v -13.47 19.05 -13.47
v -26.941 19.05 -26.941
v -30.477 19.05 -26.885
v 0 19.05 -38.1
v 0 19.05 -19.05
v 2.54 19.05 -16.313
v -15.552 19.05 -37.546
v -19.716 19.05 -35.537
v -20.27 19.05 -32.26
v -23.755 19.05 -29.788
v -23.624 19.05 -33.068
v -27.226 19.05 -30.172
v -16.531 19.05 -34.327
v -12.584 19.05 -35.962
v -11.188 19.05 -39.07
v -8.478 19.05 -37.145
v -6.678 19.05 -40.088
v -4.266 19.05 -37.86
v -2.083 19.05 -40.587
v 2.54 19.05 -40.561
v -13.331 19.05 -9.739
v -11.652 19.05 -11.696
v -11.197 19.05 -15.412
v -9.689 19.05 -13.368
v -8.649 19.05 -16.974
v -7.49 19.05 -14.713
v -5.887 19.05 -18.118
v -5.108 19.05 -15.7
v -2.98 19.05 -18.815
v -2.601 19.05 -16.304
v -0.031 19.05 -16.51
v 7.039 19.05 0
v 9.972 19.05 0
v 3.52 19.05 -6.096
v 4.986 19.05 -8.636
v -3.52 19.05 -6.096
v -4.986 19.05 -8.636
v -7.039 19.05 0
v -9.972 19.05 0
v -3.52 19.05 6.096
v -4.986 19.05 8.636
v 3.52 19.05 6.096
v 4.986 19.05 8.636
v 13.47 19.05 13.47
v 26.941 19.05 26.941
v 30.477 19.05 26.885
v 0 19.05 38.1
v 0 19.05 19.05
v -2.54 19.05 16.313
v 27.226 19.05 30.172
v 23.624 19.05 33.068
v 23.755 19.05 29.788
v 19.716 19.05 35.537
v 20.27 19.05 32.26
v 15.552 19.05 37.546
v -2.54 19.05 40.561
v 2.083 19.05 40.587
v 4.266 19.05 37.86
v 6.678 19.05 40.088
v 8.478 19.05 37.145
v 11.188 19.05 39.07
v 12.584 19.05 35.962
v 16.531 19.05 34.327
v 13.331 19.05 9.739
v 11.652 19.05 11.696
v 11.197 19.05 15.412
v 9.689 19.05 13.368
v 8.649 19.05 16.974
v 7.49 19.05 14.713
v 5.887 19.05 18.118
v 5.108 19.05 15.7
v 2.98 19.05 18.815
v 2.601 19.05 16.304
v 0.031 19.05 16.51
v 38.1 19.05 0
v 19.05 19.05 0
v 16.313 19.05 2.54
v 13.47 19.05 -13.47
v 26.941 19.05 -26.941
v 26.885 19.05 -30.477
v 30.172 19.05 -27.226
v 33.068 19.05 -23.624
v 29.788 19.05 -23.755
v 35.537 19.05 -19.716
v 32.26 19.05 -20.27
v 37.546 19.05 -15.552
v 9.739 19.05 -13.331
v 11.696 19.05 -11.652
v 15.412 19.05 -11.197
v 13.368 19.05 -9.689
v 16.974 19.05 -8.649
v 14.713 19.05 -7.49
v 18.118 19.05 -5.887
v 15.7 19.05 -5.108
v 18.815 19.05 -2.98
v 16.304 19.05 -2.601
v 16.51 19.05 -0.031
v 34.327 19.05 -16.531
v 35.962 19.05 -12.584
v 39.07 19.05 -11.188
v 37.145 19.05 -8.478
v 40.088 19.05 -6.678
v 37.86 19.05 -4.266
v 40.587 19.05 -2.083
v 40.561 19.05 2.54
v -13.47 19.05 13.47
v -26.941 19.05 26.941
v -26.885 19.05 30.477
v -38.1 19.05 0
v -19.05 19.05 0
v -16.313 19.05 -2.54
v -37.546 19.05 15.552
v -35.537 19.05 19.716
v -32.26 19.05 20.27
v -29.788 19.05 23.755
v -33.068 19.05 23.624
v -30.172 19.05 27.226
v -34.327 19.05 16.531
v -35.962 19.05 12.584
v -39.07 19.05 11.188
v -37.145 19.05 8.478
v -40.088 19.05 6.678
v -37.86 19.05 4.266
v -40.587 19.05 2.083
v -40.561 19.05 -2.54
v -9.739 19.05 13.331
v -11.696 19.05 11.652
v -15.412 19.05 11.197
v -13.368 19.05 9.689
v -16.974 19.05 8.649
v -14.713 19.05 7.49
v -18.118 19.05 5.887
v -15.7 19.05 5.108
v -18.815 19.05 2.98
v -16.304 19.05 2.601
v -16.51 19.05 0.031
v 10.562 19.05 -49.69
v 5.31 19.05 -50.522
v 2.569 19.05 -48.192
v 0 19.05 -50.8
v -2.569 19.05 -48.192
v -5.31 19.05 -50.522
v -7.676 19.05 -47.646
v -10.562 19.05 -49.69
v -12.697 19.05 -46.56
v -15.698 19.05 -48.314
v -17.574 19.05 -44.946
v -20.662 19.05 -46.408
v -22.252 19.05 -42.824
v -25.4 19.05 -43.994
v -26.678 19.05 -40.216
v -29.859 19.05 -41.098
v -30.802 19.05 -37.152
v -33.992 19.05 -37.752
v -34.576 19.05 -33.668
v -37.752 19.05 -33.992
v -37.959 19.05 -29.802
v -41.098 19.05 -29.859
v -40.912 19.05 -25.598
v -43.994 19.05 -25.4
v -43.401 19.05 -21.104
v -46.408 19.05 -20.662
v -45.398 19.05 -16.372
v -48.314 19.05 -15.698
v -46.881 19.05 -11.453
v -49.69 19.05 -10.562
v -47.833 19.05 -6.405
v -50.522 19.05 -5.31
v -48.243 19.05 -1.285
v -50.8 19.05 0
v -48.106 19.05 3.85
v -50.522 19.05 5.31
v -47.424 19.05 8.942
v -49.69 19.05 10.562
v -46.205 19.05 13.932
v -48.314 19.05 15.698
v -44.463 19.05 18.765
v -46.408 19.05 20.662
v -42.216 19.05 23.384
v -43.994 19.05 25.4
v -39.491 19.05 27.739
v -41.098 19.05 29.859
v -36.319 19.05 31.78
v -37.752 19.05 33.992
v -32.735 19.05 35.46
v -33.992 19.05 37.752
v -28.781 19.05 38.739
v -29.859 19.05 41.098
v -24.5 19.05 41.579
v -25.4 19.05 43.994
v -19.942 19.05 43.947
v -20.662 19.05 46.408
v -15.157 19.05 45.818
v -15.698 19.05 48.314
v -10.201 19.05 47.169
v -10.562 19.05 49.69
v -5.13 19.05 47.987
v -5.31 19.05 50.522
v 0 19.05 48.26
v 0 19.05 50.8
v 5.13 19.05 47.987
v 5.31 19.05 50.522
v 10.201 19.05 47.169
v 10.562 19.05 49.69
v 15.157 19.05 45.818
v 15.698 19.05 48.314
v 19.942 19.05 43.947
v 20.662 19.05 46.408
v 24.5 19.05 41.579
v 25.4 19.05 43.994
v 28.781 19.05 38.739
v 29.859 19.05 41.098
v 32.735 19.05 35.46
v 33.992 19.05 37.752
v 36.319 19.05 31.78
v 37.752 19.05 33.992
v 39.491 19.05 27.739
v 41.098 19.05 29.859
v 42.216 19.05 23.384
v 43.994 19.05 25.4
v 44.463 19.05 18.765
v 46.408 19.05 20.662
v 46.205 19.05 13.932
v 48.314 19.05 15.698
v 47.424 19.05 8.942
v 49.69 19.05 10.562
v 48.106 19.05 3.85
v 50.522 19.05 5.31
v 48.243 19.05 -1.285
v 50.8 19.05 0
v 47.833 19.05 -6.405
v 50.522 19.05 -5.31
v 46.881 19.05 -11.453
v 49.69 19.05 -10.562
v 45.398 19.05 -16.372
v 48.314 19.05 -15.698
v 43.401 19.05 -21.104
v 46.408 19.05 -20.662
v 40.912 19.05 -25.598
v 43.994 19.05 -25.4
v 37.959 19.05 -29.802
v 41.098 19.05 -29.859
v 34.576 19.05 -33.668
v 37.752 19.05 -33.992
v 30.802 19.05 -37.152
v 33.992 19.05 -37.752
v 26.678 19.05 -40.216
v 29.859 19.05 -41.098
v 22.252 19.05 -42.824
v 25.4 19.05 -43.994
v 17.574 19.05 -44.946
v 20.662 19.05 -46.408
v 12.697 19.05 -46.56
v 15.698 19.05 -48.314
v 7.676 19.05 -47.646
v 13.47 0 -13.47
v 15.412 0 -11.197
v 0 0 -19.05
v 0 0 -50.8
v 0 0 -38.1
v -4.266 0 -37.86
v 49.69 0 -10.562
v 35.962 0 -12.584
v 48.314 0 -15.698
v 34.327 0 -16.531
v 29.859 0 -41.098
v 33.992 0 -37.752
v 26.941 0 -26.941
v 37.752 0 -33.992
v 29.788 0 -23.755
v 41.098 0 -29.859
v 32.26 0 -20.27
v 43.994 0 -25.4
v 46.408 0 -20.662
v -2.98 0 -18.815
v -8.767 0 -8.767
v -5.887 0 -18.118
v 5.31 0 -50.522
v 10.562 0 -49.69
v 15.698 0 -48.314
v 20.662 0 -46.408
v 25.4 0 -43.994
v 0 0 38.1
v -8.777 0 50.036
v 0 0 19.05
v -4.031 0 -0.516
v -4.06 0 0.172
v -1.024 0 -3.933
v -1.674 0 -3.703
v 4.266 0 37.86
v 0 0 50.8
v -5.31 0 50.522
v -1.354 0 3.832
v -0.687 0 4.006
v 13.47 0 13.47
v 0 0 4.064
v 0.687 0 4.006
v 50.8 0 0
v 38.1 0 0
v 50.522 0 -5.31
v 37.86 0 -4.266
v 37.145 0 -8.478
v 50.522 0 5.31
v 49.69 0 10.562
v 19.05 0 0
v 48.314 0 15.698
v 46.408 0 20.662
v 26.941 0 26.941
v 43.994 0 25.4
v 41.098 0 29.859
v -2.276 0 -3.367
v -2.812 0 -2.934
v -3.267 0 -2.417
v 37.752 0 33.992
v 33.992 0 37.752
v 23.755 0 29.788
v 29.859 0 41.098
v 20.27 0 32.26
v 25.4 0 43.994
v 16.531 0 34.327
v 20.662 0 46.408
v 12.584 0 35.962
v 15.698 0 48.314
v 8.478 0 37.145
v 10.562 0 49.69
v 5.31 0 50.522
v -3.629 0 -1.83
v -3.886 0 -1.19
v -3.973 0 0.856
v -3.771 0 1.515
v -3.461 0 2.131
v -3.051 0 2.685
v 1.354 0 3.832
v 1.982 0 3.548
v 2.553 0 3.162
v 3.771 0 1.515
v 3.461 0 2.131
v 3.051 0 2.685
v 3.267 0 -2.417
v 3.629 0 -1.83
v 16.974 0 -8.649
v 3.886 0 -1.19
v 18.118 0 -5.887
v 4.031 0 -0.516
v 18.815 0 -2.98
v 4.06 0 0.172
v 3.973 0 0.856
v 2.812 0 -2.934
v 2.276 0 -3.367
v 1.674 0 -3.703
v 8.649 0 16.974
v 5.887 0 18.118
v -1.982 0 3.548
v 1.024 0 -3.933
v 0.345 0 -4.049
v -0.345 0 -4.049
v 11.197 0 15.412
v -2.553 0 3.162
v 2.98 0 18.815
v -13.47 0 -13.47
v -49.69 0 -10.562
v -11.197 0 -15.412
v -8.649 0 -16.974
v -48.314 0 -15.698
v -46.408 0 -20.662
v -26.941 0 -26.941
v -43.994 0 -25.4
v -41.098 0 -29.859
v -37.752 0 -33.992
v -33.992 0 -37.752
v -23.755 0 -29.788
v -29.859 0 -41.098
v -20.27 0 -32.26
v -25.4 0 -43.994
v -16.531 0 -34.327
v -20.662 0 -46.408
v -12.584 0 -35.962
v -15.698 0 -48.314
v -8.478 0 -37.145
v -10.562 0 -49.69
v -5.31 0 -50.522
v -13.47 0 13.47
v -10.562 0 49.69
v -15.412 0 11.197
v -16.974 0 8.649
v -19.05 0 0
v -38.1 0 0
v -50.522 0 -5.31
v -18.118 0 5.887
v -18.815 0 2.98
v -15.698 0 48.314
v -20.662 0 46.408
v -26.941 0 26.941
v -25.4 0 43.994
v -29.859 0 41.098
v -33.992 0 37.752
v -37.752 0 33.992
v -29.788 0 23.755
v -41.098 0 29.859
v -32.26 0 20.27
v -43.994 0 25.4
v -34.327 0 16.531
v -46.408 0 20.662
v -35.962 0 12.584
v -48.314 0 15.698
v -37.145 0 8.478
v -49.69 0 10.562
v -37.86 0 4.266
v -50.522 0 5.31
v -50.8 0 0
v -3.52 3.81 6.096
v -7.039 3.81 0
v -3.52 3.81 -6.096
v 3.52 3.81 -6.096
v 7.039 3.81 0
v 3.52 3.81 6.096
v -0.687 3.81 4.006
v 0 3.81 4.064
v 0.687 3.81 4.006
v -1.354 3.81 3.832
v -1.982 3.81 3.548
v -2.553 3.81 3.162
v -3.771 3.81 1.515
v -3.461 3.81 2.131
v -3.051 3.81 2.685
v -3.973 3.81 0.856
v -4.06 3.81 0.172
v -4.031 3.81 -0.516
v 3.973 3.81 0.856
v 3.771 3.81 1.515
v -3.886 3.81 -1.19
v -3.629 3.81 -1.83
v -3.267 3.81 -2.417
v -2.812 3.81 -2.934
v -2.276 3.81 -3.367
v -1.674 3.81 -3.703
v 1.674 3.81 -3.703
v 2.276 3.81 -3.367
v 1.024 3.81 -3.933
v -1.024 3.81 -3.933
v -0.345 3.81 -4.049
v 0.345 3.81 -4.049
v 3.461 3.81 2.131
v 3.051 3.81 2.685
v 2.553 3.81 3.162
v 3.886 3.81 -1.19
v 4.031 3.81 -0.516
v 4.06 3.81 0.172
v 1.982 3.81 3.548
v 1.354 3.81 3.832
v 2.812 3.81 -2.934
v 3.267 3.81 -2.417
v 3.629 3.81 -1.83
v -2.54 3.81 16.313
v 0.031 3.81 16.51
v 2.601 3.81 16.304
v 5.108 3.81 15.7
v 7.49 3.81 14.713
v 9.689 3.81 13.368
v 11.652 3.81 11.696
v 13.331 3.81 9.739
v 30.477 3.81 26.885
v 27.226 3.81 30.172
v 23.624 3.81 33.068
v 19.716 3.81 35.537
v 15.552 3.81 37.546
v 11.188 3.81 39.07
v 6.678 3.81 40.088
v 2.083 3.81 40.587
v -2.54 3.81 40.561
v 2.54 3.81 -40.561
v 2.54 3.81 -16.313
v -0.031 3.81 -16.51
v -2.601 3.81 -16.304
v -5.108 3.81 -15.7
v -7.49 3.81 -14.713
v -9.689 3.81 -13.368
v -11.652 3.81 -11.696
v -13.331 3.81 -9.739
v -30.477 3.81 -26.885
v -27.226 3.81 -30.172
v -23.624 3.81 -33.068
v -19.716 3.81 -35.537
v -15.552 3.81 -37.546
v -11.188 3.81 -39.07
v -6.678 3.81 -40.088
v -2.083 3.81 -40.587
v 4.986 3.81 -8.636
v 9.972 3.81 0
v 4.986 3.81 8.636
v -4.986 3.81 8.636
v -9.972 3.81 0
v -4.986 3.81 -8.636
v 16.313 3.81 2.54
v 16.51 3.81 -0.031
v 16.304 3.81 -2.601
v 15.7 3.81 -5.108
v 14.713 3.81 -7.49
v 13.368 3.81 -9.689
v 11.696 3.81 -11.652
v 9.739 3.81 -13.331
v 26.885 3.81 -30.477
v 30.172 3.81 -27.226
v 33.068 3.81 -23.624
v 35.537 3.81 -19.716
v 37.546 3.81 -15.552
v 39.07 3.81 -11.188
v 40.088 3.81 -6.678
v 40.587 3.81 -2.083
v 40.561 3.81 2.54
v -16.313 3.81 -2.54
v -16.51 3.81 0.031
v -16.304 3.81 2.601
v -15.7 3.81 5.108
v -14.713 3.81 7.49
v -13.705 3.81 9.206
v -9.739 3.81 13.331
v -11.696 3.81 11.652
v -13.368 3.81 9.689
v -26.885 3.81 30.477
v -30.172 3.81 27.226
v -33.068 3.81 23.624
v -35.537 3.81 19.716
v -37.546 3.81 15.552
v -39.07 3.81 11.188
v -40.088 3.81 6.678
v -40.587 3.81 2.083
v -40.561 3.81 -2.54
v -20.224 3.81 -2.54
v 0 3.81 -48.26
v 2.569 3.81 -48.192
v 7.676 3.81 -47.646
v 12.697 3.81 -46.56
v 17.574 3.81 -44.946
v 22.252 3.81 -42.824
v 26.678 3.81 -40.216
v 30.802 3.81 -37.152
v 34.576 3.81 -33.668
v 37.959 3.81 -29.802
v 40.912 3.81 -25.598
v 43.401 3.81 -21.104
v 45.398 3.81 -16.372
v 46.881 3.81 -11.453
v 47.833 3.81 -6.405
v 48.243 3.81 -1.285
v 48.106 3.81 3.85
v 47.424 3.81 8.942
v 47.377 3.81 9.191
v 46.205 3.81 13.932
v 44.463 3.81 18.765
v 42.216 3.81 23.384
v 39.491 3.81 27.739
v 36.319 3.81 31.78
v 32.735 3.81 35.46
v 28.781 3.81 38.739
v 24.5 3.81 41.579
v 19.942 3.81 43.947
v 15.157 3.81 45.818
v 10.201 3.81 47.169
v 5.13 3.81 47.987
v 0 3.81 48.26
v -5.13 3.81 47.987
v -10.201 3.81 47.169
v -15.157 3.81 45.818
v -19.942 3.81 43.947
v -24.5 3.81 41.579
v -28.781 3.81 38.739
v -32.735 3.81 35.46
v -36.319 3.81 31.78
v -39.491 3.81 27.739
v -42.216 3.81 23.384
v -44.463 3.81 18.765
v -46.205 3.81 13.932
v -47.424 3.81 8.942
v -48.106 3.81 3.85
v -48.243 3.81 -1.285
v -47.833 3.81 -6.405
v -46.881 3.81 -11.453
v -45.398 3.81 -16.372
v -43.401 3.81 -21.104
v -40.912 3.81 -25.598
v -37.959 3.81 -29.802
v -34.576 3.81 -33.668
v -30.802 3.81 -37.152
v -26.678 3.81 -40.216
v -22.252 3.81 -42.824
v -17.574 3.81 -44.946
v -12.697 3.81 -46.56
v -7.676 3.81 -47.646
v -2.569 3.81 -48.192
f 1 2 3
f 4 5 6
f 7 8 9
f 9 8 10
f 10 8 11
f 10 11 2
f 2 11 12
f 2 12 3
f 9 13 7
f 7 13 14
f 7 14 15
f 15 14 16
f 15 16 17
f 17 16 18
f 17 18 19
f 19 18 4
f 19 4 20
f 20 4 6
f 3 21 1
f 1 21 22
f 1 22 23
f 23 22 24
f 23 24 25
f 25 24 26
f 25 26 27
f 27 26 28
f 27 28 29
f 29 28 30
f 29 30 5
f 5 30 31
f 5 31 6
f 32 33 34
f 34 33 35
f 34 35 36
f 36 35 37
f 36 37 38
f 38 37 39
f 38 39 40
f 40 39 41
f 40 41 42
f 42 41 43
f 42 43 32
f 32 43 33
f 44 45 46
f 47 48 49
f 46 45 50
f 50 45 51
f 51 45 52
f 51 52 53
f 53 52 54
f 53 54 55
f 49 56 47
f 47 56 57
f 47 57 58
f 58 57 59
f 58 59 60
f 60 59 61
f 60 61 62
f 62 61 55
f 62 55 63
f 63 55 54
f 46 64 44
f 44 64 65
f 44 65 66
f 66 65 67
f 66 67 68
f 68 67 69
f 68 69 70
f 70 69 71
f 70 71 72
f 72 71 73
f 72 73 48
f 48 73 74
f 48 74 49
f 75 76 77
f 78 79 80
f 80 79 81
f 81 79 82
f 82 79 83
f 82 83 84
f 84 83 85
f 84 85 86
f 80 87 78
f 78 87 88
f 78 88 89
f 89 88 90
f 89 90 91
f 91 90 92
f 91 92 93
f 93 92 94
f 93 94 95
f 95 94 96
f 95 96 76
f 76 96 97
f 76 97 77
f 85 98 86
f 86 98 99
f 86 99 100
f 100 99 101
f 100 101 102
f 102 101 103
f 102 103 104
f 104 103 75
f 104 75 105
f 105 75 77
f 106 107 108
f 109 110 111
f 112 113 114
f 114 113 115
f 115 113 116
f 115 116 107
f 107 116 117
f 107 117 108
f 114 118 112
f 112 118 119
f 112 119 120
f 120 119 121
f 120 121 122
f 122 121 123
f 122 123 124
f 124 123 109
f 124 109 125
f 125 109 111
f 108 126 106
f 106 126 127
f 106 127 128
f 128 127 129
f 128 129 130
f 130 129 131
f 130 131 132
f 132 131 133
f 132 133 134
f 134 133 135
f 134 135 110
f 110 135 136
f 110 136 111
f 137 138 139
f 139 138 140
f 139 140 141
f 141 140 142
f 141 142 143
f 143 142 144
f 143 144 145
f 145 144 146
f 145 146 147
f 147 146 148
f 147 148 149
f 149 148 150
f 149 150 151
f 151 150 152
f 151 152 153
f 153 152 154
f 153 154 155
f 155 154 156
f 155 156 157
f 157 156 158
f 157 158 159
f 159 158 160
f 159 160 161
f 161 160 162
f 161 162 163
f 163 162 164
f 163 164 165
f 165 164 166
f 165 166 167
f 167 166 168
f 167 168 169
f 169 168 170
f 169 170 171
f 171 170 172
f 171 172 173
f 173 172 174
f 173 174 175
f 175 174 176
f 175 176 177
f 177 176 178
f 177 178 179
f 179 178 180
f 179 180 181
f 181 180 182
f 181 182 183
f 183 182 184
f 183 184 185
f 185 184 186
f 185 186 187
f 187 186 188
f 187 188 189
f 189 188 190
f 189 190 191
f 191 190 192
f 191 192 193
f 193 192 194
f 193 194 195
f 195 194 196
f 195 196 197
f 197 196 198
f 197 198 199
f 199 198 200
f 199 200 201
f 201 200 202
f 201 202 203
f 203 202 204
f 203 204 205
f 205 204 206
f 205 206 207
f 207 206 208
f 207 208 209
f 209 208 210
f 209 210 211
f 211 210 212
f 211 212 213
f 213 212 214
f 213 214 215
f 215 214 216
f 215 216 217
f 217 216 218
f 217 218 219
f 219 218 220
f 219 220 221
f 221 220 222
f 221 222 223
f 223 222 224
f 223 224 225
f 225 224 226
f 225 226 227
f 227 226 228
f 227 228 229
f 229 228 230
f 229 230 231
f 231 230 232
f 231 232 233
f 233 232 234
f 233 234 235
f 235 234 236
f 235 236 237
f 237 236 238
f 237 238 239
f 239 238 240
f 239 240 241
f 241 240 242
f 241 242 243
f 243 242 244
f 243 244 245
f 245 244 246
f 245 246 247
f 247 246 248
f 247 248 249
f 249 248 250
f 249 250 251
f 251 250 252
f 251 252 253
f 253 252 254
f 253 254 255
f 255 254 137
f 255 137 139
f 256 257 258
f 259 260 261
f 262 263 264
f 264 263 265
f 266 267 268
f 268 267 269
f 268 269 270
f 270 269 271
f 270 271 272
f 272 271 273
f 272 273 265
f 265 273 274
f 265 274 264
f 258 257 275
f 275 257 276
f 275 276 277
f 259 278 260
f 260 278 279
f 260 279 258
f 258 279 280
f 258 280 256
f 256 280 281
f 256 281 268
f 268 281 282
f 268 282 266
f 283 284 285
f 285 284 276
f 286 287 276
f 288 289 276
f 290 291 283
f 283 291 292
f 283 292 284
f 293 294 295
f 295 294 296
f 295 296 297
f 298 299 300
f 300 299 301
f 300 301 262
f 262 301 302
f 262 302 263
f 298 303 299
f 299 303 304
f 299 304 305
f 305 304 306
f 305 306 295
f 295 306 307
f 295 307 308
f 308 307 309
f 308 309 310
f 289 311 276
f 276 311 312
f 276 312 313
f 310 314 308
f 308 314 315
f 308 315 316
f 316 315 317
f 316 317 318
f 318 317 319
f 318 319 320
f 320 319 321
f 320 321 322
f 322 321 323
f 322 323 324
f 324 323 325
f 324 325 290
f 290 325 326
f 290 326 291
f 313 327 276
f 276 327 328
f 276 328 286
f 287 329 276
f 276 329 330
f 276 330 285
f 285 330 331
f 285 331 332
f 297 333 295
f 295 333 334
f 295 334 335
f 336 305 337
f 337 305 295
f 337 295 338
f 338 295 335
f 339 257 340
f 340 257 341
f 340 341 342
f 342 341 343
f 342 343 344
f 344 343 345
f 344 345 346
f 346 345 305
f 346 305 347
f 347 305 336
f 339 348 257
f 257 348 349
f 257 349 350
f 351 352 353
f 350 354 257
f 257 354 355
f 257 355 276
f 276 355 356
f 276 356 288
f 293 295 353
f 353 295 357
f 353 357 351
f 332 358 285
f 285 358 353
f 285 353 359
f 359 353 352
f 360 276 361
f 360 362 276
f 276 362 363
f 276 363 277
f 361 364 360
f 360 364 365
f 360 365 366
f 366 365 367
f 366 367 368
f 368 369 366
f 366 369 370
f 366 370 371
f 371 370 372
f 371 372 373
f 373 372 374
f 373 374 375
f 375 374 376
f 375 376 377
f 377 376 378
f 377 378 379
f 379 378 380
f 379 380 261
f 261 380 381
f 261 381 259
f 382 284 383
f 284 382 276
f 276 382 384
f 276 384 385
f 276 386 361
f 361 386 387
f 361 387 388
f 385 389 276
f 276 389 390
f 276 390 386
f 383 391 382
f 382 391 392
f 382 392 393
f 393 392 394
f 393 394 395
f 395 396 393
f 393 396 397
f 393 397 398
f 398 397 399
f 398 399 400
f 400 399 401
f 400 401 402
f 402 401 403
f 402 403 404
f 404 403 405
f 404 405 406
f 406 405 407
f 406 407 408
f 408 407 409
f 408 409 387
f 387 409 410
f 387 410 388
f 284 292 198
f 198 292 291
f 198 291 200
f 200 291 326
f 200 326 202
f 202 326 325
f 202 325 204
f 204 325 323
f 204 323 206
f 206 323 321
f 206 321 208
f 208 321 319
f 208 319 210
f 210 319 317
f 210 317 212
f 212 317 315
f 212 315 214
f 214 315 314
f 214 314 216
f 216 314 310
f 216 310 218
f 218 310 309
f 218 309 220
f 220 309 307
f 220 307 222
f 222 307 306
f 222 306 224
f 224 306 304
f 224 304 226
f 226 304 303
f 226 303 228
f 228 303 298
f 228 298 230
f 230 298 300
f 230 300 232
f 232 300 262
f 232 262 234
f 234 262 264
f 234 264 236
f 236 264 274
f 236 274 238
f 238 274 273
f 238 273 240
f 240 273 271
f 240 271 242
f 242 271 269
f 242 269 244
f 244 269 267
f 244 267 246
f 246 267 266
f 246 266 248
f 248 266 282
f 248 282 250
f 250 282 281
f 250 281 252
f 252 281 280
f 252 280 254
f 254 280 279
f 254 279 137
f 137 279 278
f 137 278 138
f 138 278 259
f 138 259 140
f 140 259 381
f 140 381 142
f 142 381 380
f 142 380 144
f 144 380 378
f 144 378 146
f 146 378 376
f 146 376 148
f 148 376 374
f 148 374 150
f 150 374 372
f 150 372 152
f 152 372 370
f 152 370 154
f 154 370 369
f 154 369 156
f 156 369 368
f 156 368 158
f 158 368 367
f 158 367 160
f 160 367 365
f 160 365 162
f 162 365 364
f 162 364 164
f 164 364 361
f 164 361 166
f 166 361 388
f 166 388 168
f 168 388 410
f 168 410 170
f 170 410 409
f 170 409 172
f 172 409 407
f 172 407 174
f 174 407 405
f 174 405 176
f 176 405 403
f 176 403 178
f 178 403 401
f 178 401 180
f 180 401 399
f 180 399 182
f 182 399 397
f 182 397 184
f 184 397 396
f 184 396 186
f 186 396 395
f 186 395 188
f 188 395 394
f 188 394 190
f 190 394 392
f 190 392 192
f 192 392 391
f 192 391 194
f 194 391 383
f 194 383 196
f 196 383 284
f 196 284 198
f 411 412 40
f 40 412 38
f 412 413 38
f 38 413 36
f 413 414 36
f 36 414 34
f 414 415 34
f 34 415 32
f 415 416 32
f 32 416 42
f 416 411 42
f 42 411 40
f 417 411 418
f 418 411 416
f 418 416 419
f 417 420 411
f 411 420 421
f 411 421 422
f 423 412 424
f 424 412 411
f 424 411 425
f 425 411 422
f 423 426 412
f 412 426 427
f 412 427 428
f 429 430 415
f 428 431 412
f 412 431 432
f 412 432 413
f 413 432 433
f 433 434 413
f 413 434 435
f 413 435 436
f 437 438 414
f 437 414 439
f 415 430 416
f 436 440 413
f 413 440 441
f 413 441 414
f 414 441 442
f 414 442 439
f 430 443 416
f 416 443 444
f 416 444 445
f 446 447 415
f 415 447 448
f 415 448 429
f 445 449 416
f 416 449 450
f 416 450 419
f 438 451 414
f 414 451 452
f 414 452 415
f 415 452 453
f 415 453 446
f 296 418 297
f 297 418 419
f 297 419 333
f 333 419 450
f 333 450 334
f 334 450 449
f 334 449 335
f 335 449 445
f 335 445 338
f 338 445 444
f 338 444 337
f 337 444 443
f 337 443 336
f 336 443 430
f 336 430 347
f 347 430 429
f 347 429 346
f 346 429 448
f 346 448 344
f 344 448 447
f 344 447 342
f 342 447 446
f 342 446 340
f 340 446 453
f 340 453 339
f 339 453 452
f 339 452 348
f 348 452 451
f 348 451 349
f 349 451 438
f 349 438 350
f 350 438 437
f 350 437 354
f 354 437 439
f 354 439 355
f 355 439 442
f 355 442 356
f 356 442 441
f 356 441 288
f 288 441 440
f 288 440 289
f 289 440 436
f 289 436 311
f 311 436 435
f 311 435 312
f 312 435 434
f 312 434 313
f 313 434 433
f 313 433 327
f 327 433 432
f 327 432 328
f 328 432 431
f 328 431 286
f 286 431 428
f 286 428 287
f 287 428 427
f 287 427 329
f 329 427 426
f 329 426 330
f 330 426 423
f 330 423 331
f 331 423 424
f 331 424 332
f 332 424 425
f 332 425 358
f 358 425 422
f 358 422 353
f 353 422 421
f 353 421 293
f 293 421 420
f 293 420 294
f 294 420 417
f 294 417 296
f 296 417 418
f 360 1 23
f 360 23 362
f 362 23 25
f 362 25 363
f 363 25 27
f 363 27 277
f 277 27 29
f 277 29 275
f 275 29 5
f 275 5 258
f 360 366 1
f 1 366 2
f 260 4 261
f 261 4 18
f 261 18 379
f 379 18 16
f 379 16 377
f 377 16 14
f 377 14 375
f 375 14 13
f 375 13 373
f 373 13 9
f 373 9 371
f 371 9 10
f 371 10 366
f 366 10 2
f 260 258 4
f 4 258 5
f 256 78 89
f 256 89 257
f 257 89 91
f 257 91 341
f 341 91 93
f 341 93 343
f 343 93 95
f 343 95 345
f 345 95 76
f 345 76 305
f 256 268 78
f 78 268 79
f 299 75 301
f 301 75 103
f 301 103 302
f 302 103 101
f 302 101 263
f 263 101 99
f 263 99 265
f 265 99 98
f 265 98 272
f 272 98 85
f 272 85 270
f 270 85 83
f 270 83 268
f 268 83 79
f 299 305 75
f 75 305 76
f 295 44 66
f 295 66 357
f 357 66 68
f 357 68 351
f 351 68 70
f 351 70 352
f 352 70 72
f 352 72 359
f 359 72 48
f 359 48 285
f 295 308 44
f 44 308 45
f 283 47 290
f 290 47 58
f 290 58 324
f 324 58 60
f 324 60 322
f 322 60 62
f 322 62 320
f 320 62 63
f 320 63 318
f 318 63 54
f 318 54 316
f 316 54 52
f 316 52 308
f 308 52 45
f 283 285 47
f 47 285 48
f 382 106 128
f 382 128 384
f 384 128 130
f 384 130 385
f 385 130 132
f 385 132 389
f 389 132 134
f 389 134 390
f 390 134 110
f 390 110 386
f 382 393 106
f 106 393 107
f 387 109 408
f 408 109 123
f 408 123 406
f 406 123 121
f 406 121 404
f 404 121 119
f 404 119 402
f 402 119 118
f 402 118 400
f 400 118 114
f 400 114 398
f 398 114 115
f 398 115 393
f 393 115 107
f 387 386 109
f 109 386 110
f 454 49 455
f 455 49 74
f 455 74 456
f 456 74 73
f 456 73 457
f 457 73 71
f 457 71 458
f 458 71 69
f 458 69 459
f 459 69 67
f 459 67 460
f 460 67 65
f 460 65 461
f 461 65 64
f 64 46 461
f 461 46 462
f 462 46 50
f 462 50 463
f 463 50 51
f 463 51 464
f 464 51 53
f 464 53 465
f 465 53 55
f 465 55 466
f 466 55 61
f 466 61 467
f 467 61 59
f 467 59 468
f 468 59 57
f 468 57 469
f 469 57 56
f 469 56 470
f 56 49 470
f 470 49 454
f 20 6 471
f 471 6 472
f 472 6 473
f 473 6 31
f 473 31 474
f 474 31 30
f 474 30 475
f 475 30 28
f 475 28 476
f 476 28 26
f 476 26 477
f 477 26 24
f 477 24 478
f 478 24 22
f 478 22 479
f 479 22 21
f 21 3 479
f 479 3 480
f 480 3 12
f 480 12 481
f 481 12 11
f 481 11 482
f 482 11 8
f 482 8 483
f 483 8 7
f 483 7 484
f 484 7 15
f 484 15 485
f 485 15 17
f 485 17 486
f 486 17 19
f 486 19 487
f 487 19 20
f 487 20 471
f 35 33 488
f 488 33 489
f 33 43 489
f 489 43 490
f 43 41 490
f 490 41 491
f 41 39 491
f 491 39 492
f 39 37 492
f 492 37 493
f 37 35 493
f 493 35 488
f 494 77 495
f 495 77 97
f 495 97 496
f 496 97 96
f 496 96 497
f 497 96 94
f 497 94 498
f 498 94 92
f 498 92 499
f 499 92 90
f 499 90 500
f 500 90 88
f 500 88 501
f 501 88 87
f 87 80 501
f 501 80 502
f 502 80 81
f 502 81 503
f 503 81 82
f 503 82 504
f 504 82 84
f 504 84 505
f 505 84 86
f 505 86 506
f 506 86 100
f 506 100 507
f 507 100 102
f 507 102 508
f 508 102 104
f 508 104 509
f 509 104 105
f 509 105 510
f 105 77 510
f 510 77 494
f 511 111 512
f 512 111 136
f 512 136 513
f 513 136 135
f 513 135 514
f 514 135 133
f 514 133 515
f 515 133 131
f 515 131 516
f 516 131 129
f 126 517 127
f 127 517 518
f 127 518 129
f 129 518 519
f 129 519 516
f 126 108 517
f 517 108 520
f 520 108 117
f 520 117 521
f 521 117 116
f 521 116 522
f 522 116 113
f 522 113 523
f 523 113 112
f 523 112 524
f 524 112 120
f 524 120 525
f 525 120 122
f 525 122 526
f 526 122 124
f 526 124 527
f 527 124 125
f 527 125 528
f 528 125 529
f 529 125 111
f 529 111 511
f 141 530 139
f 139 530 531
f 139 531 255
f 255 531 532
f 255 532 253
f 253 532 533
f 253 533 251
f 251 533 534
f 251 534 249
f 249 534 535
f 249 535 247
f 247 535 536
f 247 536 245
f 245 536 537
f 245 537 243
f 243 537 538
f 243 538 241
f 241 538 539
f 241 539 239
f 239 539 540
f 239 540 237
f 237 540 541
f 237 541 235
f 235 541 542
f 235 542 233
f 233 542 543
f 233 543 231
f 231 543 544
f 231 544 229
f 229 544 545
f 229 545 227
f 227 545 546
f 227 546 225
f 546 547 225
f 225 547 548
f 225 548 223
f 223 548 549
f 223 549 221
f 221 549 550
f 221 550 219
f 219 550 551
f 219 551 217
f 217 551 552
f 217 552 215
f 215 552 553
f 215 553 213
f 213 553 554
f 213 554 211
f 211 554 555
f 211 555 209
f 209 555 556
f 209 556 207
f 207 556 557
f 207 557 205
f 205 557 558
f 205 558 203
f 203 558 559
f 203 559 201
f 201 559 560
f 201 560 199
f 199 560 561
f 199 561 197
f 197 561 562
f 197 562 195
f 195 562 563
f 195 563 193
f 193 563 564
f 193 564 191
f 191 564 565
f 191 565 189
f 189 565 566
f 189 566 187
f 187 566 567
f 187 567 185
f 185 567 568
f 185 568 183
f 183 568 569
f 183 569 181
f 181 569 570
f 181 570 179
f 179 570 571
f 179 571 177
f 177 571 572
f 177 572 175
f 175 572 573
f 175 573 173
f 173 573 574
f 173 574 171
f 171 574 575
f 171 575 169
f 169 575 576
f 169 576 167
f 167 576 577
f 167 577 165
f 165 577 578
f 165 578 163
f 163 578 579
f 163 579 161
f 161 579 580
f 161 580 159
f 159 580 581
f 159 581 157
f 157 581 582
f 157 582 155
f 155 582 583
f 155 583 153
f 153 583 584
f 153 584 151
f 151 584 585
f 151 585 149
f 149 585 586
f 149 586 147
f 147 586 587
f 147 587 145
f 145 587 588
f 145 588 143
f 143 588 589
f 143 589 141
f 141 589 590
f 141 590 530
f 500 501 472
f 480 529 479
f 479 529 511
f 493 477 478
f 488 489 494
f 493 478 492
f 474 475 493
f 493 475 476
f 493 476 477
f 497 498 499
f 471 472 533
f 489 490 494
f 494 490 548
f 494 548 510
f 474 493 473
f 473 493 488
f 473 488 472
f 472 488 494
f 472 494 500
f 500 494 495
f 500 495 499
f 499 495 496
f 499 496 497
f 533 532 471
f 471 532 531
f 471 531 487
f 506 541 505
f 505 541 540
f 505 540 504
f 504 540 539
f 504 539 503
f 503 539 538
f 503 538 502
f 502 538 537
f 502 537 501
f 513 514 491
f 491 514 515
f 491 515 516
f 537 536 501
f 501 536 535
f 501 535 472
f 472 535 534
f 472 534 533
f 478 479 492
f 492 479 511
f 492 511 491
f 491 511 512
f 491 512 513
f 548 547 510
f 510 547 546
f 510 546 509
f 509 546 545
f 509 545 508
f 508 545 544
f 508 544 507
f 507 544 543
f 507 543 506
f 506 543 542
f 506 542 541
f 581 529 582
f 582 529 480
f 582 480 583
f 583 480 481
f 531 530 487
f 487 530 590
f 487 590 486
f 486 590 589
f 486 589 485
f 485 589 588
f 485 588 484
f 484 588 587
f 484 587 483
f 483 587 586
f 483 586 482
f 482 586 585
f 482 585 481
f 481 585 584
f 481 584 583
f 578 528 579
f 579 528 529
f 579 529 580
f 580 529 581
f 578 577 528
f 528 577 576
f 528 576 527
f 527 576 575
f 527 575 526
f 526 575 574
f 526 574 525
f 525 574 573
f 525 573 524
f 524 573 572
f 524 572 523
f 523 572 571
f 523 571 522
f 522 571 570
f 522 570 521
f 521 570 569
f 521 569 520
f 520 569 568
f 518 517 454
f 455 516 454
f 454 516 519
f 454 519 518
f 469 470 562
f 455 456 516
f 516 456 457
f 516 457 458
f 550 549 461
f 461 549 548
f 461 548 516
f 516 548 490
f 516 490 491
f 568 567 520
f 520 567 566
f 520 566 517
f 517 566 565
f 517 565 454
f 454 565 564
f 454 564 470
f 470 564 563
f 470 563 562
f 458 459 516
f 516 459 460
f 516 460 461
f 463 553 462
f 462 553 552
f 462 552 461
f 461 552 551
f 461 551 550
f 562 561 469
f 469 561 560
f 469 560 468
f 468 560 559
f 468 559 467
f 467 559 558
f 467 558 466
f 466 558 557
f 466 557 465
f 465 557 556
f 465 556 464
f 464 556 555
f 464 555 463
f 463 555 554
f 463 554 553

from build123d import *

# Parameters (mm, degrees)
SKETCH1_R           = 50.8
BOSS_EXTRUDE1_DEPTH = 19.05
CUT_EXTRUDE2_DEPTH  = 15.24
SKETCH5_R           = 4.064
CUT_EXTRUDE3_DEPTH  = 74.440708058
CUT_EXTRUDE4_DEPTH  = 75.324844433
SKETCH7_R           = 48.26
GUTTED_DEPTH        = 15.24


with BuildPart() as part:
    # Sketch1 → Boss-Extrude1 (new body)
    with BuildSketch(Plane(origin=(0, 0, 0), x_dir=(1, 0, 0), z_dir=(0, 1, 0))):
        with Locations(Location((0, 0, 0), (0, 0, 90))):
            Circle(SKETCH1_R)
    extrude(amount=BOSS_EXTRUDE1_DEPTH)

    # Sketch4 → Cut-Extrude2 (cut)
    with BuildSketch(Plane(origin=(0, 19.05, 0), x_dir=(1, 0, 0), z_dir=(0, 1, 0))):
        Polygon((-3.519527241, 6.096), (3.519527241, 6.096), (7.039054482, 0), (3.519527241, -6.096), (-3.519527241, -6.096), (-7.039054482, 0), align=None)
    extrude(amount=-CUT_EXTRUDE2_DEPTH, mode=Mode.SUBTRACT)

    # Sketch5 → Cut-Extrude3 (cut, through all)
    with BuildSketch(Plane(origin=(0, 3.81, 0), x_dir=(1, 0, 0), z_dir=(0, 1, 0))):
        with Locations(Location((0, 0, 0), (0, 0, 270))):
            Circle(SKETCH5_R)
    extrude(amount=-CUT_EXTRUDE3_DEPTH, mode=Mode.SUBTRACT)

    # Sketch6 → Cut-Extrude4 (cut, through all)
    with BuildSketch(Plane(origin=(0, 19.05, 0), x_dir=(1, 0, 0), z_dir=(0, 1, 0))):
        with BuildLine():
            ThreePointArc((-13.470384182, 13.470384182), (-7.290119387, 17.599905094), (0, 19.05))
            Line((0, 19.05), (0, 38.1))
            ThreePointArc((0, 38.1), (-14.580238773, 35.199810189), (-26.940768363, 26.940768363))
            Line((-26.940768363, 26.940768363), (-13.470384182, 13.470384182))
        make_face()
        with BuildLine():
            Line((26.940768363, 26.940768363), (13.470384182, 13.470384182))
            ThreePointArc((13.470384182, 13.470384182), (17.599905094, 7.290119387), (19.05, 0))
            Line((19.05, 0), (38.1, 0))
            ThreePointArc((38.1, 0), (35.199810189, 14.580238773), (26.940768363, 26.940768363))
        make_face()
        with BuildLine():
            Line((26.940768363, -26.940768363), (13.470384182, -13.470384182))
            ThreePointArc((13.470384182, -13.470384182), (7.290119387, -17.599905094), (0, -19.05))
            Line((0, -19.05), (0, -38.1))
            ThreePointArc((0, -38.1), (14.580238773, -35.199810189), (26.940768363, -26.940768363))
        make_face()
        with BuildLine():
            Line((-26.940768363, -26.940768363), (-13.470384182, -13.470384182))
            ThreePointArc((-13.470384182, -13.470384182), (-17.599905094, -7.290119387), (-19.05, 0))
            Line((-19.05, 0), (-38.1, 0))
            ThreePointArc((-38.1, 0), (-35.199810189, -14.580238773), (-26.940768363, -26.940768363))
        make_face()
    extrude(amount=-CUT_EXTRUDE4_DEPTH, mode=Mode.SUBTRACT)

    # Sketch7 → gutted (cut)
    with BuildSketch(Plane(origin=(0, 19.05, 0), x_dir=(1, 0, 0), z_dir=(0, 1, 0))):
        with Locations(Location((0, 0, 0), (0, 0, 270))):
            Circle(SKETCH7_R)
        with BuildLine():
            Line((-16.313445375, 2.54), (-40.560547334, 2.54))
            ThreePointArc((-40.560547334, 2.54), (-37.546464201, -15.552254691), (-26.884586844, -30.476689292))
            Line((-26.884586844, -30.476689292), (-9.739296625, -13.331399073))
            ThreePointArc((-9.739296625, -13.331399073), (-15.253251082, -6.318103468), (-16.313445375, 2.54))
        make_face(mode=Mode.SUBTRACT)
        with BuildLine():
            Line((16.313445375, -2.54), (40.560547334, -2.54))
            ThreePointArc((40.560547334, -2.54), (37.546464201, 15.552254691), (26.884586844, 30.476689292))
            Line((26.884586844, 30.476689292), (9.739296625, 13.331399073))
            ThreePointArc((9.739296625, 13.331399073), (15.253251082, 6.318103468), (16.313445375, -2.54))
        make_face(mode=Mode.SUBTRACT)
        Polygon((4.985996925, 8.636), (-4.985996925, 8.636), (-9.971993849, 0), (-4.985996925, -8.636), (4.985996925, -8.636), (9.971993849, 0), align=None, mode=Mode.SUBTRACT)
        with BuildLine():
            ThreePointArc((2.54, 40.560547334), (-15.552254691, 37.546464201), (-30.476689292, 26.884586844))
            Line((-30.476689292, 26.884586844), (-13.331399073, 9.739296625))
            ThreePointArc((-13.331399073, 9.739296625), (-6.318103468, 15.253251082), (2.54, 16.313445375))
            Line((2.54, 16.313445375), (2.54, 40.560547334))
        make_face(mode=Mode.SUBTRACT)
        with BuildLine():
            Line((-2.54, -16.313445375), (-2.54, -40.560547334))
            ThreePointArc((-2.54, -40.560547334), (15.552254691, -37.546464201), (30.476689292, -26.884586844))
            Line((30.476689292, -26.884586844), (13.331399073, -9.739296625))
            ThreePointArc((13.331399073, -9.739296625), (6.318103468, -15.253251082), (-2.54, -16.313445375))
        make_face(mode=Mode.SUBTRACT)
    extrude(amount=-GUTTED_DEPTH, mode=Mode.SUBTRACT)


solid = part.part
